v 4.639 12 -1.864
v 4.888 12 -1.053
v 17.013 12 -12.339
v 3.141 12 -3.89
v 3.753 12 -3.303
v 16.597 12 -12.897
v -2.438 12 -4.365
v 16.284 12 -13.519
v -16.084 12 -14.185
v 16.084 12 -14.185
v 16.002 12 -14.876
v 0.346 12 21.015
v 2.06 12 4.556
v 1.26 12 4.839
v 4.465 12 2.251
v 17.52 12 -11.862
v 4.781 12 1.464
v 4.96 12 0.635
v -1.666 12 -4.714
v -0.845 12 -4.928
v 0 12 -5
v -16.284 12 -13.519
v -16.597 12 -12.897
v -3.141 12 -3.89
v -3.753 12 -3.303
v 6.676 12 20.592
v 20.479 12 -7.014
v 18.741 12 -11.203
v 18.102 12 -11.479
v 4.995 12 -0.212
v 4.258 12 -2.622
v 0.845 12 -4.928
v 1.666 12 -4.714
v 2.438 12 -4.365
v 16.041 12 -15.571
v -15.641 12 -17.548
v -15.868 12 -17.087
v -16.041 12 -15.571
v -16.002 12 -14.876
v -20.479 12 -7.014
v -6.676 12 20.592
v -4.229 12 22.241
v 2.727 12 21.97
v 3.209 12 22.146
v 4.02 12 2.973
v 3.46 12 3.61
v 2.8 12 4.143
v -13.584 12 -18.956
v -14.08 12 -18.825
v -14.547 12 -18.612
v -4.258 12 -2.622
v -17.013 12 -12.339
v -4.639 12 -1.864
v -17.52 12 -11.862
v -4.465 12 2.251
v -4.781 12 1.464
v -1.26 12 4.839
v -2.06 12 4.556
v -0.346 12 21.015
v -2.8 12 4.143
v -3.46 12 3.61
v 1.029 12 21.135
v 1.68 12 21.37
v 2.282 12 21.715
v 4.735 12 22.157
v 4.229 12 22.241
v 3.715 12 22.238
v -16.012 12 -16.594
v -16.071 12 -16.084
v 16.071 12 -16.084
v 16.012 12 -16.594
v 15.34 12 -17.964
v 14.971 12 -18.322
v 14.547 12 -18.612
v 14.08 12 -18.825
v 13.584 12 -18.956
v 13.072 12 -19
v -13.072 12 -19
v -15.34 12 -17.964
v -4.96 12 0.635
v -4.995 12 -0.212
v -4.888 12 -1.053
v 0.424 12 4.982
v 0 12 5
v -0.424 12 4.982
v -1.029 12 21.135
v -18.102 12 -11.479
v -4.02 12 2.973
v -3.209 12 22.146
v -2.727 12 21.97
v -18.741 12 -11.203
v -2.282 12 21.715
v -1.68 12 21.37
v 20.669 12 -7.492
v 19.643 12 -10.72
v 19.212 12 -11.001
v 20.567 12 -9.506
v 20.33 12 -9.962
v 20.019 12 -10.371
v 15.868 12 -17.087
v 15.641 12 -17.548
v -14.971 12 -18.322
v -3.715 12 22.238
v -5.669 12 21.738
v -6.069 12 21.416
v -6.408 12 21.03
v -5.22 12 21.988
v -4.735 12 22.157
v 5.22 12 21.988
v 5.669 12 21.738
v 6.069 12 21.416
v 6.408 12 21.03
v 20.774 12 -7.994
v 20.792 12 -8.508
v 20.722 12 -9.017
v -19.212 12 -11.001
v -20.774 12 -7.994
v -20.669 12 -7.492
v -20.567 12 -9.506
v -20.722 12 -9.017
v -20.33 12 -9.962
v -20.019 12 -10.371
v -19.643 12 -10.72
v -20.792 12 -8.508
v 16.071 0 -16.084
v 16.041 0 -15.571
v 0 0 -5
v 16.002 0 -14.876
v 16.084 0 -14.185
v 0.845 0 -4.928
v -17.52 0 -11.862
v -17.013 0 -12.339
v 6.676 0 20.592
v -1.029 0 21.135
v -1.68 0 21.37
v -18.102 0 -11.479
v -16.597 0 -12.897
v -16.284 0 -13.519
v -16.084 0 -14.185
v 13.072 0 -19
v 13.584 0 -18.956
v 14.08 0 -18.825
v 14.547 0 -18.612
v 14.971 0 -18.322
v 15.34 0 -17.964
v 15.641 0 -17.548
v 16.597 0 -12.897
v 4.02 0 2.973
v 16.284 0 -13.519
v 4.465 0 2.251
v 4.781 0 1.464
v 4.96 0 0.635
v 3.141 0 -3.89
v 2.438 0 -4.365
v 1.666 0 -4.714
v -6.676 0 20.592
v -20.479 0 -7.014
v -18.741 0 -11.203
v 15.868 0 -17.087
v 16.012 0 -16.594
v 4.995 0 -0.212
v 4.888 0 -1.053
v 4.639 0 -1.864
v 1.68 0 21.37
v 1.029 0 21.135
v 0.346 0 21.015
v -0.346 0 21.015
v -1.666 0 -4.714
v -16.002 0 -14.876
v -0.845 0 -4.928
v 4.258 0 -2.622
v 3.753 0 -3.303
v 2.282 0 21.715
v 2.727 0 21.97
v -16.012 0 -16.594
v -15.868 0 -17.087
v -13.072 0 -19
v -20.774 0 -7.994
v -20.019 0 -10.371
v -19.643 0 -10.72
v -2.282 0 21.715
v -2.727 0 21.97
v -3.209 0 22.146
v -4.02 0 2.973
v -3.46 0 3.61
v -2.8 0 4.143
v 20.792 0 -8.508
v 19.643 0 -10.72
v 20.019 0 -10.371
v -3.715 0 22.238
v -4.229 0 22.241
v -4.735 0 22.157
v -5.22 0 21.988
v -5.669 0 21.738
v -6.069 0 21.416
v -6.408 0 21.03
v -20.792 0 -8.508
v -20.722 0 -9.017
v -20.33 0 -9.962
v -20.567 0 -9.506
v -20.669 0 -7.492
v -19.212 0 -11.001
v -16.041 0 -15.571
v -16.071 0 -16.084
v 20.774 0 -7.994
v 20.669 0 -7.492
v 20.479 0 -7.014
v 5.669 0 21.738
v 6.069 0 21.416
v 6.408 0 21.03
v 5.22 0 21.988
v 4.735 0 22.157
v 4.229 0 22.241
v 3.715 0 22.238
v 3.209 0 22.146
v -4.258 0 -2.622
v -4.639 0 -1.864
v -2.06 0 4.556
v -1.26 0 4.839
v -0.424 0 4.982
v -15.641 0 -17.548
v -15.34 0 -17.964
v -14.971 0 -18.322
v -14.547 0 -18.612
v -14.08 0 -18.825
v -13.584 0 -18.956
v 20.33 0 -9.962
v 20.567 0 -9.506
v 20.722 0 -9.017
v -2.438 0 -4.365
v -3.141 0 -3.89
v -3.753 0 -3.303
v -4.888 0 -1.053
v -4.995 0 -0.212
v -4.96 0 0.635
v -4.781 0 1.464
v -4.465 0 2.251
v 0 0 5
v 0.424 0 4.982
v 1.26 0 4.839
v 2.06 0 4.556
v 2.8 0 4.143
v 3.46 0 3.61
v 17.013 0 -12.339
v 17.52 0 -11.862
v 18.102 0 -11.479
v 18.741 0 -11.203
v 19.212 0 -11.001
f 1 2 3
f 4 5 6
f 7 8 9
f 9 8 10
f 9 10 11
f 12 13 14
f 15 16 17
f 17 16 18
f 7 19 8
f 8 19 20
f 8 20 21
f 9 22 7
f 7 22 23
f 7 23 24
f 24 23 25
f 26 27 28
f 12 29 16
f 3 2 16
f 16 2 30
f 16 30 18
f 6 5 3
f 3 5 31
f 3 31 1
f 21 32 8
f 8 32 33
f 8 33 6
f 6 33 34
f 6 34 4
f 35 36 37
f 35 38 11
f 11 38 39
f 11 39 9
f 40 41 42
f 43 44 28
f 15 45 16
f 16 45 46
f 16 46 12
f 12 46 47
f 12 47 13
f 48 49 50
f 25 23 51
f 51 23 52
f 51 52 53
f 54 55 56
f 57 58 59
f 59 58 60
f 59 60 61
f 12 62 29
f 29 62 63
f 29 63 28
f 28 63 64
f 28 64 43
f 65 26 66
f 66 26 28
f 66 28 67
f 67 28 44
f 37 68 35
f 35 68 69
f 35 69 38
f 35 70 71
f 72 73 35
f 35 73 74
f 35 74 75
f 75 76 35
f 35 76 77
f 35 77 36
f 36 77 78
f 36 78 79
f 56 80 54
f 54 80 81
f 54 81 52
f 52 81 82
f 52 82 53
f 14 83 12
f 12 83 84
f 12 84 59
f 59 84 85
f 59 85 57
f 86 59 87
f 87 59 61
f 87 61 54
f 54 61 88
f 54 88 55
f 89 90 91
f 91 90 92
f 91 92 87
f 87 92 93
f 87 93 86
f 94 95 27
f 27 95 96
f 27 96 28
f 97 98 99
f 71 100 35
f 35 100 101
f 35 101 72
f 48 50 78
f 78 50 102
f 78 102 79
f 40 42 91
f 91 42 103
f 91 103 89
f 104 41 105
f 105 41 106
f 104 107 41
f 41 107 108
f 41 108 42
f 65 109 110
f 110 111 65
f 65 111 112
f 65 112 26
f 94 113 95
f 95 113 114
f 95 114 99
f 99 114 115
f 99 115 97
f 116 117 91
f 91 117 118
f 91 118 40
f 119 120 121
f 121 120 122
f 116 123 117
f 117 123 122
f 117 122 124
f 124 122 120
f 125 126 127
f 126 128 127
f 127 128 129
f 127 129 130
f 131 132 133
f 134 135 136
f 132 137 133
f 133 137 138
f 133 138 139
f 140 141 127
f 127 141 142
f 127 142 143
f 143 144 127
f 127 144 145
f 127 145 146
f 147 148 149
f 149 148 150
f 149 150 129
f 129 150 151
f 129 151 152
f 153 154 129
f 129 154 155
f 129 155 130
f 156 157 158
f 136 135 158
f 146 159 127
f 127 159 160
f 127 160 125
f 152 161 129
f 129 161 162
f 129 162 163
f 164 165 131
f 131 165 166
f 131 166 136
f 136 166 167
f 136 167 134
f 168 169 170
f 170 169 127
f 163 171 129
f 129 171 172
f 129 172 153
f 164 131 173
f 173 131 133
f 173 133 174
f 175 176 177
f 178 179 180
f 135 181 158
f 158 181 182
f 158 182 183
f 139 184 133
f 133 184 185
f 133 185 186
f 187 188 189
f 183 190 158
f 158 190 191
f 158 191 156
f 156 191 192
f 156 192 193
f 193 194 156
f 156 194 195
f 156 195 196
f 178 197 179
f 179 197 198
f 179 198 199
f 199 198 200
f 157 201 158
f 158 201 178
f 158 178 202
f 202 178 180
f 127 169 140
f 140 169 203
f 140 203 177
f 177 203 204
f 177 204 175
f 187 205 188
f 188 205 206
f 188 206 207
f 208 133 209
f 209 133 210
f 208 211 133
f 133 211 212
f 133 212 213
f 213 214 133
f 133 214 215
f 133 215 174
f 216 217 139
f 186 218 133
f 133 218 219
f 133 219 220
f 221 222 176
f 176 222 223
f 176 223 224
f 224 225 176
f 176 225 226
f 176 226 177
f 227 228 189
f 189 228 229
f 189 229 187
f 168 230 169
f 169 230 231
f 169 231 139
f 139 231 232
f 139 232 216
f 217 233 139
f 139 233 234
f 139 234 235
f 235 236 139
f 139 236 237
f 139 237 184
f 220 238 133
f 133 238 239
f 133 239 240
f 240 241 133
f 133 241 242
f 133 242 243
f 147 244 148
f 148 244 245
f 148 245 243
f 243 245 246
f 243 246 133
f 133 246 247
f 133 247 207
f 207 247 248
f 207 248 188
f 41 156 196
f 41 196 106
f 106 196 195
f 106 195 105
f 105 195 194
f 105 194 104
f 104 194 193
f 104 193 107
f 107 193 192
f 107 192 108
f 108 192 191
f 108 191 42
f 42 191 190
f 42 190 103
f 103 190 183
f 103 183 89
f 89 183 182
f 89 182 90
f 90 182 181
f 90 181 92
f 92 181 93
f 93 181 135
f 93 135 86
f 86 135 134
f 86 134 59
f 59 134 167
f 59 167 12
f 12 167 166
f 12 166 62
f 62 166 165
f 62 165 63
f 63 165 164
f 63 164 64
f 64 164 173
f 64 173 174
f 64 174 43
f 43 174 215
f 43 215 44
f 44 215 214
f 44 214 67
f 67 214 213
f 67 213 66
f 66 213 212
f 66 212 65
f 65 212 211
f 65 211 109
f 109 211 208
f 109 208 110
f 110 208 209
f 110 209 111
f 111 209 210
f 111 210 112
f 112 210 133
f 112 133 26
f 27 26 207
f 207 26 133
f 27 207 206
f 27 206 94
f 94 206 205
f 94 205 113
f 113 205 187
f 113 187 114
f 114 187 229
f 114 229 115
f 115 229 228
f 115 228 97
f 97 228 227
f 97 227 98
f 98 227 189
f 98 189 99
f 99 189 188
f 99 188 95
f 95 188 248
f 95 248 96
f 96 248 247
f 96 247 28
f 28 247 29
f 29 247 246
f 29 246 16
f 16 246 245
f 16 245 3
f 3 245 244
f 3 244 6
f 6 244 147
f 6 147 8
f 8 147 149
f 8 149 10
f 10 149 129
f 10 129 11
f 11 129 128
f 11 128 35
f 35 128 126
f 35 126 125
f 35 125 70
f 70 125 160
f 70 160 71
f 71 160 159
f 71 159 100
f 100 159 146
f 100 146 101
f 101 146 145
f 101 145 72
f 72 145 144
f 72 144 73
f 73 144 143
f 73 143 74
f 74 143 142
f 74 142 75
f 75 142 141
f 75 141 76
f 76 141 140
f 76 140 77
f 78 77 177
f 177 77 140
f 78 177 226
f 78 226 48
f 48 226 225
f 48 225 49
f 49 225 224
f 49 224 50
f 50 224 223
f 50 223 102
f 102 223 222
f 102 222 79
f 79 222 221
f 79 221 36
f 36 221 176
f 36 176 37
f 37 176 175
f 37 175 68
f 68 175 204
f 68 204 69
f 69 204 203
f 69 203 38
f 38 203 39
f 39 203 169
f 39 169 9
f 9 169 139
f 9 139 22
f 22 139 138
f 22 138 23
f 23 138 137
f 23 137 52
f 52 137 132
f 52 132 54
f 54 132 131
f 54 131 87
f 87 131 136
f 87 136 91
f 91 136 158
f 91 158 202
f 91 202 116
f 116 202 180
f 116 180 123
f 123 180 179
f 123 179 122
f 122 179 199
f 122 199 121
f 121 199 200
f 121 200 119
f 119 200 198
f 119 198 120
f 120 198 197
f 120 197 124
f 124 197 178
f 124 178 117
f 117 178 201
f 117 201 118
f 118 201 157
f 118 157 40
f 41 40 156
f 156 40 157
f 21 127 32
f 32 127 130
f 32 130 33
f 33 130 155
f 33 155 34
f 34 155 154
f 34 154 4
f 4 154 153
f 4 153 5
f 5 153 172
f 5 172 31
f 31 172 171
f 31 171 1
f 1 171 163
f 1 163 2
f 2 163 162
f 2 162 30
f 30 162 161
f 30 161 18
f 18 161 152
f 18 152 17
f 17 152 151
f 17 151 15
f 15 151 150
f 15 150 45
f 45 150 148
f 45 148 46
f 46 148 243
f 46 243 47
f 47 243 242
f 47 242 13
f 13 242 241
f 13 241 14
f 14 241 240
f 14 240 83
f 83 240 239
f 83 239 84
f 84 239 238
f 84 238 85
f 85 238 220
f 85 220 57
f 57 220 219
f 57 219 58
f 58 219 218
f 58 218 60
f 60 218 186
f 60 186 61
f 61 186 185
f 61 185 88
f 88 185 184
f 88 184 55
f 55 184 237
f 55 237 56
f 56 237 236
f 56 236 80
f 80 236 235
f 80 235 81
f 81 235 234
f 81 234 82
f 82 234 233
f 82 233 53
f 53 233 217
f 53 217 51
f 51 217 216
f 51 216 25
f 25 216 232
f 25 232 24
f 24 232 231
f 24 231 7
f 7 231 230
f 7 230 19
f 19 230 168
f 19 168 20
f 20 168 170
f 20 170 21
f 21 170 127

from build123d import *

# Parameters (mm, degrees)
SKETCH1_R           = 5
BOSS_EXTRUDE1_DEPTH = 12


with BuildPart() as part:
    # Sketch1 → Boss-Extrude1 (new body)
    with BuildSketch(Plane(origin=(0, 0, 0), x_dir=(1, 0, 0), z_dir=(0, 1, 0))):
        with BuildLine():
            Line((-20.479322087, 7.014372264), (-6.676095441, -20.592081028))
            ThreePointArc((-6.676095441, -20.592081028), (-4.735248894, -22.157120519), (-2.281607925, -21.714537281))
            ThreePointArc((-2.281607925, -21.714537281), (0, -21), (2.281607925, -21.714537281))
            ThreePointArc((2.281607925, -21.714537281), (4.735248894, -22.157120519), (6.676095441, -20.592081028))
            Line((6.676095441, -20.592081028), (20.479322087, 7.014372264))
            ThreePointArc((20.479322087, 7.014372264), (20.566845751, 9.506073196), (18.740594579, 11.203436029))
            ThreePointArc((18.740594579, 11.203436029), (16.597396767, 12.897075552), (16.041026726, 15.571428571))
            ThreePointArc((16.041026726, 15.571428571), (15.339583608, 17.963961012), (13.07179677, 19))
            Line((13.07179677, 19), (-13.07179677, 19))
            ThreePointArc((-13.07179677, 19), (-15.339583608, 17.963961012), (-16.041026726, 15.571428571))
            ThreePointArc((-16.041026726, 15.571428571), (-16.597396767, 12.897075552), (-18.740594579, 11.203436029))
            ThreePointArc((-18.740594579, 11.203436029), (-20.566845751, 9.506073196), (-20.479322087, 7.014372264))
        make_face()
        with Locations(Location((0, 0, 0), (0, 0, 270))):
            Circle(SKETCH1_R, mode=Mode.SUBTRACT)
    extrude(amount=BOSS_EXTRUDE1_DEPTH)


solid = part.part
